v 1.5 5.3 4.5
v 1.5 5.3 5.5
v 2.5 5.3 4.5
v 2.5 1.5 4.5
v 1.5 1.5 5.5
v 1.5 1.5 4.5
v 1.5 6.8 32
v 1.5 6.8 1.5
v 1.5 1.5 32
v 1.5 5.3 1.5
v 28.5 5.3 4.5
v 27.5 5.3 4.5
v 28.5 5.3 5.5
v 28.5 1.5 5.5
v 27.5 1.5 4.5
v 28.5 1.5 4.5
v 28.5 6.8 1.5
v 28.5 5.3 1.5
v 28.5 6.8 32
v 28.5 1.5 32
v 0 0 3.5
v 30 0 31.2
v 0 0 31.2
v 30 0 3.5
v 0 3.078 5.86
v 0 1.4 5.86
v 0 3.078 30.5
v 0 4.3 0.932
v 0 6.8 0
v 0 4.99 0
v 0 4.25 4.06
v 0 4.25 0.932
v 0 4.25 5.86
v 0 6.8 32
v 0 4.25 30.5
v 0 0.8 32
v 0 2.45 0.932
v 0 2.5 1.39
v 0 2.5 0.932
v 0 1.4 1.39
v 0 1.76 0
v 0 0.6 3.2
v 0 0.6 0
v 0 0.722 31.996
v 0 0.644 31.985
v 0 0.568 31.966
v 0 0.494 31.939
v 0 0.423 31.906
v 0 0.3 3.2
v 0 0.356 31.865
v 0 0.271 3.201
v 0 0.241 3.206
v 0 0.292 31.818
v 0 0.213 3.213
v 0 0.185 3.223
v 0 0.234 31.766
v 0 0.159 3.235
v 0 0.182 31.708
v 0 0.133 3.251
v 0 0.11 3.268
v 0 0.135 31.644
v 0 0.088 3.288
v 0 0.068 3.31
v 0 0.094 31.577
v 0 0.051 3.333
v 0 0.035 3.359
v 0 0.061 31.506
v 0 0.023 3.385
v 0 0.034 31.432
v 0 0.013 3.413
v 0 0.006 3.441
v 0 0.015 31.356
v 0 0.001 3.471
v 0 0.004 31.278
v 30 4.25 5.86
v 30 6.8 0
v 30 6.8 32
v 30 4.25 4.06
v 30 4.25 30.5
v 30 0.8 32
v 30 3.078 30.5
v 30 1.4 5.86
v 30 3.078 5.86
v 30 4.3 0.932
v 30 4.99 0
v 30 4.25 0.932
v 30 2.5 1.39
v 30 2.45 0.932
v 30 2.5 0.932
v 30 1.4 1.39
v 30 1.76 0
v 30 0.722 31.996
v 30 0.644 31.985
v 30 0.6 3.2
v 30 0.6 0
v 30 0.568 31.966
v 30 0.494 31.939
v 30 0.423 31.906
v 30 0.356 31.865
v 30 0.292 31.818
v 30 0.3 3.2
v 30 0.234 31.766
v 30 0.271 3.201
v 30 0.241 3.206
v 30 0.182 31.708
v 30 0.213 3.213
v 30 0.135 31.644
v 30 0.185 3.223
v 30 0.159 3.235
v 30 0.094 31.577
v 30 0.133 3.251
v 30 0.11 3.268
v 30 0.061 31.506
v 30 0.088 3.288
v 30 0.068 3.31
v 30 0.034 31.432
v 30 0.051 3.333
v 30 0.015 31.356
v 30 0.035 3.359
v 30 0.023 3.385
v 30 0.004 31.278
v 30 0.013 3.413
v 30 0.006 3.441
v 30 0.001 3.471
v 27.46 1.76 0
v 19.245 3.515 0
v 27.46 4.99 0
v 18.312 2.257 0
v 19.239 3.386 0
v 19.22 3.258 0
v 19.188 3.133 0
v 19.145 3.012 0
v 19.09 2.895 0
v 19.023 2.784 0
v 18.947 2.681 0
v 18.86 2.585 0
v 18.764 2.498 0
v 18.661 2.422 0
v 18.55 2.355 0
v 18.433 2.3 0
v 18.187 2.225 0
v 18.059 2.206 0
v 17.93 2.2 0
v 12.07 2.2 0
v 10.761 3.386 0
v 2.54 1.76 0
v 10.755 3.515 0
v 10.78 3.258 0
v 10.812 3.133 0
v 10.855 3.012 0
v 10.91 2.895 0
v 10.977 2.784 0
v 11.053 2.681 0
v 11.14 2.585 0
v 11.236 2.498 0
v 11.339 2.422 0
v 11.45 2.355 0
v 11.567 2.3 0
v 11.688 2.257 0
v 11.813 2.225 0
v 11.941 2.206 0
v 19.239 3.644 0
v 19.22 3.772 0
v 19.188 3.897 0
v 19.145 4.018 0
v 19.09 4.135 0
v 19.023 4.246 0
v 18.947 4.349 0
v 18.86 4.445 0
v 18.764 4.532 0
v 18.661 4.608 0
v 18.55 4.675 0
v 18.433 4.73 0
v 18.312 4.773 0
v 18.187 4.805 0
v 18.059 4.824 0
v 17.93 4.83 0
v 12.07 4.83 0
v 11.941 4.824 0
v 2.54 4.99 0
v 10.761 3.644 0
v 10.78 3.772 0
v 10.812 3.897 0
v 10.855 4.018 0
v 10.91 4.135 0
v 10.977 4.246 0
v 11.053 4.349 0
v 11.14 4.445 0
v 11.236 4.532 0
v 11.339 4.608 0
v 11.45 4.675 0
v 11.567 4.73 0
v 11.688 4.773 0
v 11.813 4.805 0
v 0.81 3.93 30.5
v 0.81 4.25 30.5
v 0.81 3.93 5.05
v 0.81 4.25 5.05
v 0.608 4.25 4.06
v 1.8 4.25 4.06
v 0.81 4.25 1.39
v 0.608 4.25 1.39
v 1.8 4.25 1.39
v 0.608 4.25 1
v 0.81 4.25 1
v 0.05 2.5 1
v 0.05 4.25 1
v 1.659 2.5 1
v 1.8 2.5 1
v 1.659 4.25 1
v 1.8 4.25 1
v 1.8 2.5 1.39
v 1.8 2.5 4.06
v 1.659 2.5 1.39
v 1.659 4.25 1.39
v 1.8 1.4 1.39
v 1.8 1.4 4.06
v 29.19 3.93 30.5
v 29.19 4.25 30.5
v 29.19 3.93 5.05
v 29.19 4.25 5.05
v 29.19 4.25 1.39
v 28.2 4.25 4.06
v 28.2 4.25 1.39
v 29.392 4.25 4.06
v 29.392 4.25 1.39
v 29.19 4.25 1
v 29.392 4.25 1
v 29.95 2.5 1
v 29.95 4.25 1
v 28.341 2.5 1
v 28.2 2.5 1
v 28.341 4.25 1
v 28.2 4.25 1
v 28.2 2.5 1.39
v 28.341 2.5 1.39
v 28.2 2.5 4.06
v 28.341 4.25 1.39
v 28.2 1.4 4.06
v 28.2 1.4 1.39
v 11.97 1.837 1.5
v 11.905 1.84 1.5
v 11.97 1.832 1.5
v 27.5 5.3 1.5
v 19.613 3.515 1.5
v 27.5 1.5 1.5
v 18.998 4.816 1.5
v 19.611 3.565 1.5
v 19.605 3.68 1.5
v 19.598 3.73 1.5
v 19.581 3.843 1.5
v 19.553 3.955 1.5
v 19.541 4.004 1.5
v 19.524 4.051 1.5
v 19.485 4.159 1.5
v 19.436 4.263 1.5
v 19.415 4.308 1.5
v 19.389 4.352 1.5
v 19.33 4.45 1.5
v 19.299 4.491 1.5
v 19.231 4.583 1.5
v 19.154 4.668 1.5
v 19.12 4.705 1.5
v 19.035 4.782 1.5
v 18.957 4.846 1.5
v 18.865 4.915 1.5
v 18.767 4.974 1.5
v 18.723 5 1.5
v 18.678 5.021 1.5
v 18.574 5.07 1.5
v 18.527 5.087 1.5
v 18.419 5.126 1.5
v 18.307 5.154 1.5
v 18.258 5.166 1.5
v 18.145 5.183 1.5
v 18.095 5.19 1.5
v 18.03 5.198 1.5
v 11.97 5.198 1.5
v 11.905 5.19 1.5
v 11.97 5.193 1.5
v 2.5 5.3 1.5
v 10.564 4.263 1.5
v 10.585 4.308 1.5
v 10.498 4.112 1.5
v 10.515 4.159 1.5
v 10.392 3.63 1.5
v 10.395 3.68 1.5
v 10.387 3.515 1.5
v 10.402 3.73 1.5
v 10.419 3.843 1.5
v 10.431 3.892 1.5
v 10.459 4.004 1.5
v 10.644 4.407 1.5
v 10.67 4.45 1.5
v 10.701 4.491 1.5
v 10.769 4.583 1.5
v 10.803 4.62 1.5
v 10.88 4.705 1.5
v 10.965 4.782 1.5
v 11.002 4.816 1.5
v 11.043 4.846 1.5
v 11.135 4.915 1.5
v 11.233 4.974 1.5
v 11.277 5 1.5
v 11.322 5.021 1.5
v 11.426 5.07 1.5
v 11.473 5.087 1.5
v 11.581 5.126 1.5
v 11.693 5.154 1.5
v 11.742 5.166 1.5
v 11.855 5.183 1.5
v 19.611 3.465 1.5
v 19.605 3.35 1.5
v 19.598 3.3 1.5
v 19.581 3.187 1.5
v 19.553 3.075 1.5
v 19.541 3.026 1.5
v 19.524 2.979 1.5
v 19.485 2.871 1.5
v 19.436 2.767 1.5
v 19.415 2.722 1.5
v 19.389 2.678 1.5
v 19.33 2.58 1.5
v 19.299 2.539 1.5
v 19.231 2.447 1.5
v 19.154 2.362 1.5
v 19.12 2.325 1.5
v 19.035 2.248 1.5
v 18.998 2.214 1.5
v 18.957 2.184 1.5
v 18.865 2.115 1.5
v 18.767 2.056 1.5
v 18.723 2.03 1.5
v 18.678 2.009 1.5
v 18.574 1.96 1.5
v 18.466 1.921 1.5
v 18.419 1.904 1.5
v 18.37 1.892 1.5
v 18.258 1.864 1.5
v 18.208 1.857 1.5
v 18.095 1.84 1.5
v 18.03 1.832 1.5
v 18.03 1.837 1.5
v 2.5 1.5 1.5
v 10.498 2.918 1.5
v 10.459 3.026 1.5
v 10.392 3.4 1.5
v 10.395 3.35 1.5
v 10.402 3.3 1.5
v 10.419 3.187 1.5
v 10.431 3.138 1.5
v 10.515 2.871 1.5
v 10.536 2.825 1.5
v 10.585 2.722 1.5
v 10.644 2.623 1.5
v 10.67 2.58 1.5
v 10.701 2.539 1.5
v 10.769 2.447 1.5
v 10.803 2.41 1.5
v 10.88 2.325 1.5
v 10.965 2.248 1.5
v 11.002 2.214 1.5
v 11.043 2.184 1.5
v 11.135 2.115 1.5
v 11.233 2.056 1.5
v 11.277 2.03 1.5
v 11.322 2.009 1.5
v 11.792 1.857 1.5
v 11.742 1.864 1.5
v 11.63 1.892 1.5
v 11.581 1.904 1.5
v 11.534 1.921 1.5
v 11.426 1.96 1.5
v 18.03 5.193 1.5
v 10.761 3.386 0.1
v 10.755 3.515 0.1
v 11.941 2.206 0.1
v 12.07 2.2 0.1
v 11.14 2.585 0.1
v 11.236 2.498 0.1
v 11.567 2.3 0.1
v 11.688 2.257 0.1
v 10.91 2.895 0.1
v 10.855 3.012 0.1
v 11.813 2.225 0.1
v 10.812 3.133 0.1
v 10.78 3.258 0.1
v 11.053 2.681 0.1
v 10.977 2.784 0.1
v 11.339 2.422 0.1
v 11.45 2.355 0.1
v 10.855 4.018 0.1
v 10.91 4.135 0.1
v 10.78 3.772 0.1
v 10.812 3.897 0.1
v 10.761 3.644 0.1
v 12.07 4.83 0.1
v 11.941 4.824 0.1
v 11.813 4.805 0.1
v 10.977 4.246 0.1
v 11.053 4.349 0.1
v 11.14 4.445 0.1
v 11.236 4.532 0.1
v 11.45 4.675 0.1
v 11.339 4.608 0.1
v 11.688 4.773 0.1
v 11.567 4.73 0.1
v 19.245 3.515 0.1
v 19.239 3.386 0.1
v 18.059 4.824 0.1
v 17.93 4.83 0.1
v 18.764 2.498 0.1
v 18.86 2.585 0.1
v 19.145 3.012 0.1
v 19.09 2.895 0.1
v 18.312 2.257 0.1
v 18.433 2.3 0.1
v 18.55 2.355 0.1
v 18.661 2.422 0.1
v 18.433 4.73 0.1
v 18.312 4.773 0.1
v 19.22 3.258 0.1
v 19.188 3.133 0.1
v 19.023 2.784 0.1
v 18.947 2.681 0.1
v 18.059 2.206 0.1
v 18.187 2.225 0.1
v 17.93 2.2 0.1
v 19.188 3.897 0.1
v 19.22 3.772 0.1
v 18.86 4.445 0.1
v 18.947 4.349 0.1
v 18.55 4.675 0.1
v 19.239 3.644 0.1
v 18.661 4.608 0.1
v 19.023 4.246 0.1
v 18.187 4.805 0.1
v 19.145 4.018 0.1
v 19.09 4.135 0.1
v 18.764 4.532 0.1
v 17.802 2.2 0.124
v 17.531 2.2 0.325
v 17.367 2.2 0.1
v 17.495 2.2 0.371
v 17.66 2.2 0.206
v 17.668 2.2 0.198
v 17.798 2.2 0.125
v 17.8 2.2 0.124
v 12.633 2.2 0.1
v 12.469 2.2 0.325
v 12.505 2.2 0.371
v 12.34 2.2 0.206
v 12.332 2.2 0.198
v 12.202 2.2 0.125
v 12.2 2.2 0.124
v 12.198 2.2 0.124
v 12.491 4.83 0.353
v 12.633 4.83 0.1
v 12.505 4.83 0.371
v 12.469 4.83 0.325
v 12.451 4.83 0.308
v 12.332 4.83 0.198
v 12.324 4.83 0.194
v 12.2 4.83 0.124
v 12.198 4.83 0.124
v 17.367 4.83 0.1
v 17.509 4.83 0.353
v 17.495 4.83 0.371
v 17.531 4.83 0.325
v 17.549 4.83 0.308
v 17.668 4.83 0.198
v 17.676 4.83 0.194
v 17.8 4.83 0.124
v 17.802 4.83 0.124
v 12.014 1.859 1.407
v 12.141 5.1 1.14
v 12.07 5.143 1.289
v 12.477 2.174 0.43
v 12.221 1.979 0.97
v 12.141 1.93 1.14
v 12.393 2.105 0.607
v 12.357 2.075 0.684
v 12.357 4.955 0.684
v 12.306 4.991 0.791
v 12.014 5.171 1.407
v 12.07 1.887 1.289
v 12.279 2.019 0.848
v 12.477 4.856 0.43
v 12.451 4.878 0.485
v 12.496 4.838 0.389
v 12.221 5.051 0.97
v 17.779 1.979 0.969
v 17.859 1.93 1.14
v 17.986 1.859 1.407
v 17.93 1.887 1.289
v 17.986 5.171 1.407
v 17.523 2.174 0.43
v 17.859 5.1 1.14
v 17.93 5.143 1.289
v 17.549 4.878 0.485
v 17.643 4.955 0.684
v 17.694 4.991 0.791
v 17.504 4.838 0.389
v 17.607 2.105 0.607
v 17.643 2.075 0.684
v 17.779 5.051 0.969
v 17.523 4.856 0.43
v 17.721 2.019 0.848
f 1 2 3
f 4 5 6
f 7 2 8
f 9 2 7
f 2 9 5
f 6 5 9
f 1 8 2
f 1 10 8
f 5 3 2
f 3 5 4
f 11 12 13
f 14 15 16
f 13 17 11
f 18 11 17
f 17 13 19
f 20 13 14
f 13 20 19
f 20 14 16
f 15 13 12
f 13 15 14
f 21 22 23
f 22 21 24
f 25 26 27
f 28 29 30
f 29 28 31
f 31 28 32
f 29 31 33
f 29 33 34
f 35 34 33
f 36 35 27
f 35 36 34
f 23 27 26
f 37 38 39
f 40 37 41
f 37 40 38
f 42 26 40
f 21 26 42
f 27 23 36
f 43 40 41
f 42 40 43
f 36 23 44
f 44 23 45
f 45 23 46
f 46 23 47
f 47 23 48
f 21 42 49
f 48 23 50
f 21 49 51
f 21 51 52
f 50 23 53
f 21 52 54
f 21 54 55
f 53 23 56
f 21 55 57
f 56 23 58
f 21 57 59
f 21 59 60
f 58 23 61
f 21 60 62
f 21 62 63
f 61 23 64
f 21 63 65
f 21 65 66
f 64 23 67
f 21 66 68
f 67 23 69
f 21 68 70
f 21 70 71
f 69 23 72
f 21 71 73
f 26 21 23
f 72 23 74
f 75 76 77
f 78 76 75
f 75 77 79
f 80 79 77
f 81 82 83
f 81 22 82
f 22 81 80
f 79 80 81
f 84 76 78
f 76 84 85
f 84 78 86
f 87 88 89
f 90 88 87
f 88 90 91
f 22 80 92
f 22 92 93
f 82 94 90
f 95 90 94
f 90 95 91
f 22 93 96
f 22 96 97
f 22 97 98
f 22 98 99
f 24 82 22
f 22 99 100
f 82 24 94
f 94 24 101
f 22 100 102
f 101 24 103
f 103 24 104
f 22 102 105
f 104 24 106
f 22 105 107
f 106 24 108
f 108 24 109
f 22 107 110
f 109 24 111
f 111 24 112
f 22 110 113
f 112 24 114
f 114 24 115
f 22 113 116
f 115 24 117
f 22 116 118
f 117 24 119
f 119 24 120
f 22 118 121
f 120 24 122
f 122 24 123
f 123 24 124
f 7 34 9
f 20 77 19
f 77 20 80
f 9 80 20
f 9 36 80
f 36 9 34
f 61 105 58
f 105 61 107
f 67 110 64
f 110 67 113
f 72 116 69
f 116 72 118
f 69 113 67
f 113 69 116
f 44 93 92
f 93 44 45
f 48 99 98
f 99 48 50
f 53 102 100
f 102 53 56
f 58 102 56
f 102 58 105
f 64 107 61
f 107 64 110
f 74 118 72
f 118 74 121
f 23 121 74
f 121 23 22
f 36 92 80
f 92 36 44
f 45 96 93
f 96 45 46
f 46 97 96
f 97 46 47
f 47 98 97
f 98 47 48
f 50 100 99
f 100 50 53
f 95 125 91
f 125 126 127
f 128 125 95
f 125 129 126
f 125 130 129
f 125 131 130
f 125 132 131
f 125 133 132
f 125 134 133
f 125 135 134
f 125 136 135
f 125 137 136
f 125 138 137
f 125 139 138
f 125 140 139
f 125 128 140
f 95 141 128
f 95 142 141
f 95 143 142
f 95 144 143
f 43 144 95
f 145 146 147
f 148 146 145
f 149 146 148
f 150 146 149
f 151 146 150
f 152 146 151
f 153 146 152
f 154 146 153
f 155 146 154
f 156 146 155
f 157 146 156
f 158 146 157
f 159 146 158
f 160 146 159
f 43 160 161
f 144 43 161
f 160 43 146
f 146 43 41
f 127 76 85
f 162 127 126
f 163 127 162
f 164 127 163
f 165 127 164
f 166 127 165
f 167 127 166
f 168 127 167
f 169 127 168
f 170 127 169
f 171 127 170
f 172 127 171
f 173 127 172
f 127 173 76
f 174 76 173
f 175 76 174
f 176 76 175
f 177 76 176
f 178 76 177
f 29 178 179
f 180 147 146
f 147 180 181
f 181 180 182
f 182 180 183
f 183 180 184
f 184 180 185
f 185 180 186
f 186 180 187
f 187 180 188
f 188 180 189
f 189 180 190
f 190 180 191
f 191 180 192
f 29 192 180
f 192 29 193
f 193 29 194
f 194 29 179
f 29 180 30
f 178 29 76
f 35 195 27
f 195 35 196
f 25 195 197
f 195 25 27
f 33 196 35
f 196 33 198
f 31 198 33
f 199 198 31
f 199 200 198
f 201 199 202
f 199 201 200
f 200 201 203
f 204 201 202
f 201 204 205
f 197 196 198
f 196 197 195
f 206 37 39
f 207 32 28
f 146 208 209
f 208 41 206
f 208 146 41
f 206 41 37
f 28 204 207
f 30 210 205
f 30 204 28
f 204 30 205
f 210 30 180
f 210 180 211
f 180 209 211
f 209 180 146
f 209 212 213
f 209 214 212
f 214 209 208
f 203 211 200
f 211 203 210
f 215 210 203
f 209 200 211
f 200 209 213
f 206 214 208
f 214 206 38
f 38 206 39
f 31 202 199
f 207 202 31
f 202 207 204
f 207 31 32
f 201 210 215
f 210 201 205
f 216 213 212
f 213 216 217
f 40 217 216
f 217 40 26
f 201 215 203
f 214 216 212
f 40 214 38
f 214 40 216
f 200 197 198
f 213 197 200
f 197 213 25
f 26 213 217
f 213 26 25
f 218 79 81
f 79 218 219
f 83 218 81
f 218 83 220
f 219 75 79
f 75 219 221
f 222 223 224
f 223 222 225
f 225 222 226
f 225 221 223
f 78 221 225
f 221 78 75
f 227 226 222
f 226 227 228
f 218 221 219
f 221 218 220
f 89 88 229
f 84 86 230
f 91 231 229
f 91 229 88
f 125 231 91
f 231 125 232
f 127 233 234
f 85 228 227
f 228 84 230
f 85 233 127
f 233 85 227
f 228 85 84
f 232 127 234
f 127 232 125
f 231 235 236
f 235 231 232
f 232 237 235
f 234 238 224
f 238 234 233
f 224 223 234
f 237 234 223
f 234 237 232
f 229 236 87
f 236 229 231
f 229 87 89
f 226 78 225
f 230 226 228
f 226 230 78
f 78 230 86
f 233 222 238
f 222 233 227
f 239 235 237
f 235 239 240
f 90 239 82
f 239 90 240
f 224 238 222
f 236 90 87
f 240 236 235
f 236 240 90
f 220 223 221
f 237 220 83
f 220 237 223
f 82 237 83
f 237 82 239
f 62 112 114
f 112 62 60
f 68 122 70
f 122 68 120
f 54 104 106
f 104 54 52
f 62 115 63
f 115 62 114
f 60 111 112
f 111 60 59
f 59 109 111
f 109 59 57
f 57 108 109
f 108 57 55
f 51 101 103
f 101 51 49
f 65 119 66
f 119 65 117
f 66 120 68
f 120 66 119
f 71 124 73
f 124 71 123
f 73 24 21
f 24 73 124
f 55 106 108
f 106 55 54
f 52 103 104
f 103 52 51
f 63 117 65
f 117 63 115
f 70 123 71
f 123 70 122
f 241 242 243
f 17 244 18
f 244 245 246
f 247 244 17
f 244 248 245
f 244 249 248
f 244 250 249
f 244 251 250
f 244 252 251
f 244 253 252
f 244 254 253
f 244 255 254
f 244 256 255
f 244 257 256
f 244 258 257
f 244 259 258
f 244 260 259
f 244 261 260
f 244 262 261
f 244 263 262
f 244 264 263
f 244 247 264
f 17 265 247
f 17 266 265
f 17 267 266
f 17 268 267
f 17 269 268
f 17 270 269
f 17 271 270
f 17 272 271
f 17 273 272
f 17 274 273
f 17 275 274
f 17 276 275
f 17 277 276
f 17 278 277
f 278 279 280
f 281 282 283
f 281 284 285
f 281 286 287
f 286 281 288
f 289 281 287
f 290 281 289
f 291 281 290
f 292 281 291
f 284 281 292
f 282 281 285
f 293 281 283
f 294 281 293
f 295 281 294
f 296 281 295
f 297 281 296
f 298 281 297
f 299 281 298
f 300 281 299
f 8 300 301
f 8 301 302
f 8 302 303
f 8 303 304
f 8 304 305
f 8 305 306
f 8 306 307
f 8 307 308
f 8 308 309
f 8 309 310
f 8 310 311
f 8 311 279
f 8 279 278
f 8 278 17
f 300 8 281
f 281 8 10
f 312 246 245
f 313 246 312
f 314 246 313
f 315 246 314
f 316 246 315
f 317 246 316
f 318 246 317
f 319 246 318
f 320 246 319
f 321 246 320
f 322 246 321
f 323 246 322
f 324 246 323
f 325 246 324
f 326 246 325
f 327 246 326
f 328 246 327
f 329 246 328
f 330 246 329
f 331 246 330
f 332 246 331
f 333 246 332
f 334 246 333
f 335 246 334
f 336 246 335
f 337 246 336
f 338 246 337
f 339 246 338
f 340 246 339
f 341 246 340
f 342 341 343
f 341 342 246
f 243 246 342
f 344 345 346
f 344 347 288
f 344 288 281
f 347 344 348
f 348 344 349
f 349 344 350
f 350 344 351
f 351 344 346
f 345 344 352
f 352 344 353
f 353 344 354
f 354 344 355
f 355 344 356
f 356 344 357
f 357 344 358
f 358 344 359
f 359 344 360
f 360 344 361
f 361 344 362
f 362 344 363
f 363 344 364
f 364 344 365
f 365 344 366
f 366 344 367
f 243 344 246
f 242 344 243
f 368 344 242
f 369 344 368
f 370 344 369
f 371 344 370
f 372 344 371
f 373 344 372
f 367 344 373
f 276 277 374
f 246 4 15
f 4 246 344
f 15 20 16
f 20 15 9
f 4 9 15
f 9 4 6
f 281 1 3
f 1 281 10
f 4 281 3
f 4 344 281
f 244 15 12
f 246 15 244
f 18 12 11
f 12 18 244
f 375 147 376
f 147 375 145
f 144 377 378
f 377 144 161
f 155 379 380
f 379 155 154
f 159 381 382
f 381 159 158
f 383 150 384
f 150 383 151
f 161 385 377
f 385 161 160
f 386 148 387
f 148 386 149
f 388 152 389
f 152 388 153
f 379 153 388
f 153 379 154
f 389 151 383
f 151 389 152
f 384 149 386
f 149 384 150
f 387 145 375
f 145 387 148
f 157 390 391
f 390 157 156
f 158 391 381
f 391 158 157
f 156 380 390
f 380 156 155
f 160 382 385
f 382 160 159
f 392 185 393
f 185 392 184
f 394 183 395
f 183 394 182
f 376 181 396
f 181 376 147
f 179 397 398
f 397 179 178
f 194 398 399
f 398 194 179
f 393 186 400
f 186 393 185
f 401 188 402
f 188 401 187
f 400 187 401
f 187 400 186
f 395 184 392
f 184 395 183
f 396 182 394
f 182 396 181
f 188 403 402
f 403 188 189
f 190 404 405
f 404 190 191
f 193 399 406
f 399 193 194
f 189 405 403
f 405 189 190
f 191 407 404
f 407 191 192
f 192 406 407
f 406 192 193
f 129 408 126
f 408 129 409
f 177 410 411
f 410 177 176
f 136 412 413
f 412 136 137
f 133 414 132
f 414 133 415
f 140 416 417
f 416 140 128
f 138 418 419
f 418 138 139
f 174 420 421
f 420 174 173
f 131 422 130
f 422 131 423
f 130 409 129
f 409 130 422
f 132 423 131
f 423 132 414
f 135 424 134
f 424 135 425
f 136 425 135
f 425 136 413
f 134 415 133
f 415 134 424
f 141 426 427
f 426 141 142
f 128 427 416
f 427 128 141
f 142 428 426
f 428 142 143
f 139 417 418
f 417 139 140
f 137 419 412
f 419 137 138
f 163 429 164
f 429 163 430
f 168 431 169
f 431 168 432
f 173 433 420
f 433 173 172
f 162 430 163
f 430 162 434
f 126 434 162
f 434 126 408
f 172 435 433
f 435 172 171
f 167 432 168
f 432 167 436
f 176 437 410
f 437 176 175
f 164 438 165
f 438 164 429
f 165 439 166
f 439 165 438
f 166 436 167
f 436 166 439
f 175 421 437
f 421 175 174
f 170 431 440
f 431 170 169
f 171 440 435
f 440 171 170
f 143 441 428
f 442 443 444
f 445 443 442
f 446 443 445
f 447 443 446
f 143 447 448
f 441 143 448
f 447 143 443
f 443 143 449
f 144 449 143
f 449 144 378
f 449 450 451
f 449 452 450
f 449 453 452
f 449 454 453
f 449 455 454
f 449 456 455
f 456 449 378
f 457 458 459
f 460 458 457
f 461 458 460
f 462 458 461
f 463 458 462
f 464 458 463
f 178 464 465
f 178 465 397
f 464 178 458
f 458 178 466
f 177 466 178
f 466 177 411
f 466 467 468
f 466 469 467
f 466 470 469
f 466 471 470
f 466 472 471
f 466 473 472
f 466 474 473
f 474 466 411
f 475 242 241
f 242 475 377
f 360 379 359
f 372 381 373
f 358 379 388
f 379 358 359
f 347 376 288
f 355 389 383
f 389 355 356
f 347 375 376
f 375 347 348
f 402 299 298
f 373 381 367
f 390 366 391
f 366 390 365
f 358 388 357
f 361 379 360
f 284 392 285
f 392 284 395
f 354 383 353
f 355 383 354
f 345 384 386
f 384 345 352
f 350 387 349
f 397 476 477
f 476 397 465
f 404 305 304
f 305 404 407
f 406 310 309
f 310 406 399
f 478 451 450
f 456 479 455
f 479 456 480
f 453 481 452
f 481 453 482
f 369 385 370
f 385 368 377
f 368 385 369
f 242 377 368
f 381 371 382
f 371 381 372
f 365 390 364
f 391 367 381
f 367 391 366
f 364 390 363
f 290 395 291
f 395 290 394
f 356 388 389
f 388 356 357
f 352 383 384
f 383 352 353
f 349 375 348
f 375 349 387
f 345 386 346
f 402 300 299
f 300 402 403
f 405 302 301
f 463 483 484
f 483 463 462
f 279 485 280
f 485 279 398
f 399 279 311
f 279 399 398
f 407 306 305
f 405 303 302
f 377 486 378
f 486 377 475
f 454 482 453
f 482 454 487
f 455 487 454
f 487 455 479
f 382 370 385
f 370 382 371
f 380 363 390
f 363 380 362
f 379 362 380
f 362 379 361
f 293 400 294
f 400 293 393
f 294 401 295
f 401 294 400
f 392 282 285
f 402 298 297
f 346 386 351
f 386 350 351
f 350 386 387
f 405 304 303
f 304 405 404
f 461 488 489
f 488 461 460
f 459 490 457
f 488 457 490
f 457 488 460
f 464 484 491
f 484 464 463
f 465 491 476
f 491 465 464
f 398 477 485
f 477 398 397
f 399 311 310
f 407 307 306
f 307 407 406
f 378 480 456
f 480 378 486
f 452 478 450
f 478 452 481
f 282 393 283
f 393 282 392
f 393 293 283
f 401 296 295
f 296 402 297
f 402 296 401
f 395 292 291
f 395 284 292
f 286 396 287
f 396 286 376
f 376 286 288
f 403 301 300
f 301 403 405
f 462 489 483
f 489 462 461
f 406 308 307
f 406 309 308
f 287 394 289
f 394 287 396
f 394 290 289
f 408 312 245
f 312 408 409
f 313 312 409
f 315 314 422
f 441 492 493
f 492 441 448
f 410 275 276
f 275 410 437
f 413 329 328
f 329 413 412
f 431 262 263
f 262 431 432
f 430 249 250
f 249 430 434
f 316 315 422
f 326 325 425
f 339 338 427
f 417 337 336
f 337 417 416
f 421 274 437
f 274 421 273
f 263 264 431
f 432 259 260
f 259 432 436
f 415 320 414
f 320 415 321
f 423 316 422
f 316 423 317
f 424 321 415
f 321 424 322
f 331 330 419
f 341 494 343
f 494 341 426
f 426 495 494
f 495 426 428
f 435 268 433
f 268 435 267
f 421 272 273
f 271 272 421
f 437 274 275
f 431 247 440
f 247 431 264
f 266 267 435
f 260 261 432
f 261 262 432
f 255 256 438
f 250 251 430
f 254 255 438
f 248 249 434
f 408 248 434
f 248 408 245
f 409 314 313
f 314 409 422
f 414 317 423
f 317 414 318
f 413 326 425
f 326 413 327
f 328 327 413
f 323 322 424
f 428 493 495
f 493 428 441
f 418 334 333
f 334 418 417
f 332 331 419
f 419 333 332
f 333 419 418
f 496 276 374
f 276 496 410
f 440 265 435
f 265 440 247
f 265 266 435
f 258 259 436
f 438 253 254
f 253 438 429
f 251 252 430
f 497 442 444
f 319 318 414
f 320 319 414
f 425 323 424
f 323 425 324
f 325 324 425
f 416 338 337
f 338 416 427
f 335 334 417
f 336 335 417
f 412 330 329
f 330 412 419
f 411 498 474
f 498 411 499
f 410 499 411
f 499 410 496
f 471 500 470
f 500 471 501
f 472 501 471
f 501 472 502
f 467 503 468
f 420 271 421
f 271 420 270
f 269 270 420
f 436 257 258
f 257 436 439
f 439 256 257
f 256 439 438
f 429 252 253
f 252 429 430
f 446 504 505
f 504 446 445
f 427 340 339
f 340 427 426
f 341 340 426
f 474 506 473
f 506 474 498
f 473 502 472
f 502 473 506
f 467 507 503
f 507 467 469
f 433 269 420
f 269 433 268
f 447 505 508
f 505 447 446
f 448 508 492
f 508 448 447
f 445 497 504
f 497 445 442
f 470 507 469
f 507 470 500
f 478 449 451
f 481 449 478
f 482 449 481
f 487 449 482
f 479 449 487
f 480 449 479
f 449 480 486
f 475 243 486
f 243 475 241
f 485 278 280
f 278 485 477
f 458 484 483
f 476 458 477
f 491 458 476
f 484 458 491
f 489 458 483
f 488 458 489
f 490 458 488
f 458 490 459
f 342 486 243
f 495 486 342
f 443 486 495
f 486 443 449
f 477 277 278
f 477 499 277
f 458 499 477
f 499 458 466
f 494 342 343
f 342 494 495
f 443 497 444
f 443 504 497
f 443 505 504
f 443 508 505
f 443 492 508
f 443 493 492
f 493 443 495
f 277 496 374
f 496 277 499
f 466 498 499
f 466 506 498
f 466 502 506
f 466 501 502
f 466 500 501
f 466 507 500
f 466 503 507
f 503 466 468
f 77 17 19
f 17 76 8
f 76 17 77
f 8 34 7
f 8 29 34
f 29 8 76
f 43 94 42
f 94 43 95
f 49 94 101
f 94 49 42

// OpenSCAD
// Parametric Expansion Card
//  An OpenSCAD implementation of a basic enclosure of an Expansion Card for
//  use with Framework products like the Framework Laptop.
//
//  See https://frame.work for more information about Framework products and
//  additional documentation around Expansion Cards.

// Parametric Expansion Card © 2021 by Nirav Patel at Framework Computer LLC
// is licensed under Attribution 4.0 International. 
// To view a copy of this license, visit http://creativecommons.org/licenses/by/4.0/

// The basic dimensions of an Expansion Card
base = [30.0, 32.0, 6.8];
// The default wall thickness
side_wall = 1.5;

// Size and location of the typical PCB
pcb_gap = 0.5;
pcb = [26.0, 30.0, 0.8];
pcb_h = 3.05;

// USB-C plug dimensions
usb_c_r = 1.315;
usb_c_w = 5.86+usb_c_r*2;
usb_c_h = 2.2;

rail_h = 4.25; // to top of rail

// Boss locations matching the other Framework Expansion Cards
boss_y = 10.5;
boss_x = 3.7;

// The rail cutout in the sides of the card
module rail(make_printable) {
    rail_depth = 0.81;
    rail_flat_h = 0.32;
    
    mirror([0, 1, 0]) {
        
        // The rail that holds the card
        bottom_angle = 43.54;
        difference() {
            union() {
                translate([rail_depth, 0, -rail_flat_h]) rotate([0, 180+bottom_angle, 0]) cube([2, base[1]-side_wall, 2]);
                translate([-2+rail_depth, 0, -rail_flat_h]) cube([2, base[1]-side_wall, rail_flat_h]);
            }
            translate([-5+rail_depth, 0, 0]) cube([5, base[1]-side_wall, 5]);
        }
    
        pyramid_b = 3.23*sqrt(2);
        pyramid_t = 1.75*sqrt(2);
        pyramid_h = 1.0;
        pyramid_inset = 1.3+0.5;
        pyramid_step = 3.06;
        
        // The ramps to make slotting into the latch smooth
        translate([-1.75/2+pyramid_inset, 0, -1.75/2]) rotate([-90, 0, 0]) rotate([0, 0, 45]) { 
            cylinder(r1 = pyramid_b/2, r2 = pyramid_t/2, h = pyramid_h, $fn=4);
            cylinder(r = pyramid_t/2, h = pyramid_step+pyramid_h, $fn=4);
            translate([-0.1, 0.1, 0])cylinder(r = pyramid_t/2, h = pyramid_step+pyramid_h, $fn=4);
        }
        
        latch_l = 2.67;
        latch_d = pyramid_inset;
        latch_h = 2.85;
        latch_wall = 1.39;
        
        // The pocket that the latch bar drops into, including a 45 degree cut for printability
        translate([0, latch_wall, -latch_h]) cube([latch_d, latch_l, latch_h]);
        if (make_printable) {
            translate([latch_d, latch_wall+latch_l, -latch_h]) rotate([0, 0, -180+45]) translate([0, -latch_l, 0]) cube([latch_d*2, latch_l, latch_h]);
        }
    }
}

// A simple 45 degree rib to improve printability
module rib(thickness, height) {
    translate([-thickness/2, 0, 0]) difference() {
        cube([thickness, height, height]);
        translate([-thickness/2, height, 0]) rotate([45, 0, 0]) cube([thickness*2, height*2, height*2]);
    }
}

// A simple cylinder cutout to fillet edges
module fillet(radius, length) {
    translate([length, 0, 0]) rotate([0, -90, 0]) difference() {
        cube([radius, radius, length]);
        translate([radius, radius, -1]) cylinder(h = length+2, r = radius, $fn = 64);
    }
}

// The cutout for the USB-C plug
module usb_c_cutout(open_top) {
    // The plug is "pushed in" by an extra 0.6 to account for 3d printing tolerances
    translate([-usb_c_w/2+usb_c_r, 7-10+0.6, usb_c_r]) rotate([-90, 0, 0]) union() {
        translate([0, usb_c_r, 0]) cylinder(r = usb_c_r, h = 10, $fn = 64);
        translate([usb_c_w-usb_c_r*2, usb_c_r, 0]) cylinder(r = usb_c_r, h = 10, $fn = 64);
        cube([usb_c_w-usb_c_r*2, usb_c_r*2, 10]);
        
        // Cutout for the pin side of the shell that expands out
        translate([0, usb_c_r, 0]) cylinder(r2 = usb_c_r, r1 = 3.84/2, h = 10-7.7, $fn = 64);
        translate([usb_c_w-usb_c_r*2, usb_c_r, 0]) cylinder(r2 = usb_c_r, r1 = 3.84/2, h = 10-7.7, $fn = 64);
        translate([usb_c_w/2-usb_c_r, usb_c_r, 0]) scale([1.8, 1, 1]) rotate([0, 0, 45]) cylinder(r2 = usb_c_r*sqrt(2), r1 = 3.84/2*sqrt(2), h = 10-7.7, $fn = 4);
        
        // If the card drops in from the top rather than sliding in from the front,
        // cut out a slot for the USB-C plug to drop into.
        if (open_top) {
            translate([-usb_c_r, -10+usb_c_r, 0]) cube([usb_c_w, 10, 10]);
        }
    }
}

// Quarter section of a sphere, used as a clip
module qsphere(radius = 1) {
    difference() {
        sphere(r = radius, $fn = 32);
        translate([-radius-1, -radius-1, -radius]) cube([radius*2+2, radius*2+2, radius]);
        translate([0, -radius-1, -radius-1]) cube([radius, radius*2+2, radius*2+2]);
    }
}

// The screw boss for the PCB, optionally with space for a threaded insert
module boss(radius, use_insert, make_printable) {
    difference() {
        cylinder(r = radius, h = pcb_h, $fn = 64);
        if (use_insert) {
            // Use threaded insert
            translate([0, 0, side_wall]) cylinder(r = 1.5, h = pcb_h, $fn = 64);
        } else {
            translate([0, 0, side_wall]) cylinder(r = 0.75, h = pcb_h, $fn = 64);
        }
    }
    
    // Add a rib for printability
    if (make_printable) {
        translate([0, radius-0.1, 0]) rib(1, pcb_h);
    }
}

// Incomplete implementation of a lid to use with this shell
module expansion_card_lid() {
    gap = 0.25;
    union() {
        translate([side_wall+gap, side_wall+gap, base[2]-side_wall]) cube([base[0]-side_wall*2-gap*2, base[1]-side_wall*2-gap*2, side_wall]);
        difference() {
            translate([base[0]/2-usb_c_w/2+gap, base[1]-side_wall-gap, usb_c_r+usb_c_h]) cube([usb_c_w-gap*2, side_wall+gap, base[2]-(usb_c_r+usb_c_h)]);
            translate([base[0]/2, base[1], usb_c_r+usb_c_h]) usb_c_cutout(false);
        }
    }
}

// A basic, printable Expansion Card enclosure
//  open_end - A boolean to make the end of the card that is exposed when inserted open
//  make_printable - Adds ribs to improve printability
//  pcb_mount - The method the PCB is held in with, "boss" for self-threading screws,
//            "boss_insert" for fastener with a threaded insert,
//            "clip" for a fastener-less clip, or
//            "" for no PCB mounting structure
module expansion_card_base(open_end, make_printable, pcb_mount="boss") {
    // Hollowing of the inside
    extra = 0.1;
    inner = [base[0]-side_wall*2, base[1]-side_wall*2, base[2]-side_wall+extra];
    boss_radius = 2.3;
    
    difference() {
        cube(base);
        
        difference() {
            notch = 1.0;
            notch_l = 3.0;
            notch_h = 3.8;
            // The main hollow
            translate([side_wall, open_end ? 0 : side_wall, side_wall]) cube([inner[0], open_end ? inner[1]+side_wall : inner[1], inner[2]]);
            // Extra wall thickness where the latch cutouts are
            translate([side_wall, inner[1]+side_wall-notch_l, side_wall+notch_h/2]) rotate([0, 0, -90]) rotate([0, 90, 0]) rib(notch_h, notch);
            translate([side_wall, inner[1]+side_wall-notch_l, side_wall]) cube([notch, notch_l, notch_h]);
            translate([inner[0]+side_wall, inner[1]+side_wall-notch_l, side_wall+notch_h/2]) rotate([0, 0, 180]) rotate([0, 90, 0]) rib(notch_h, notch);
            translate([inner[0]+side_wall-notch, inner[1]+side_wall-notch_l, side_wall]) cube([notch, notch_l, notch_h]);
        }
        
        // The rounded front edge to match the laptop
        edge_r = 0.8;
        fillet(edge_r, base[0]);
        
        // The USB-C plug cutout
        translate([base[0]/2, base[1], usb_c_r+usb_c_h]) usb_c_cutout(!open_end);
        
        // The sliding rails
        translate([0, base[1], rail_h]) rail(make_printable);
        translate([base[0], base[1], rail_h]) mirror([1, 0, 0]) rail(make_printable);
        
        // Cut out the end of what is normally the aluminum cover
        ledge_cut = 0.6;
        ledge_cut_d = 3.2;
        ledge_fillet_r = 0.3;
        
        translate([0, base[1]-ledge_cut_d, 0]) cube([base[0], ledge_cut_d, ledge_cut]);
        // The fillet on that cover
        translate([base[0], base[1]-ledge_cut_d, 0]) rotate([0, 0, 180]) fillet(ledge_cut/2, base[0]);
    }
    
    if (pcb_mount == "boss" || pcb_mount == "boss_insert") {        
        // Add the screw bosses
        translate([boss_x, boss_y, 0]) boss(boss_radius, pcb_mount == "boss_insert", make_printable);
        translate([base[0]-boss_x, boss_y, 0]) boss(boss_radius, pcb_mount == "boss_insert", make_printable);
    } else if (pcb_mount == "clip") {
        clip_w = 1.5;
        clip_gap = 0.5;
        translate([boss_x-boss_radius, boss_y-boss_radius, 0]) {
            cube([boss_radius*2, boss_radius*2, pcb_h]);
            if (make_printable)
                translate([boss_radius, boss_radius*2, 0]) rib(boss_radius*2, pcb_h);
            translate([0, boss_radius-clip_w, pcb_h+pcb[2]+clip_gap]) rotate([0, 0, 180]) qsphere(clip_w);
        }
        translate([base[0]-boss_x-boss_radius, boss_y-boss_radius, 0]) {
            cube([boss_radius*2, boss_radius*2, pcb_h]);
            if (make_printable)
                translate([boss_radius, boss_radius*2, 0]) rib(boss_radius*2, pcb_h);
            translate([boss_radius*2, boss_radius-clip_w, pcb_h+pcb[2]+clip_gap]) qsphere(clip_w);
        }
    }
}

// Rotate into a printable orientation
rotate([-90, 0, 0]) translate([0, -base[1], 0]) expansion_card_base(open_end = true, make_printable = true, pcb_mount="");
